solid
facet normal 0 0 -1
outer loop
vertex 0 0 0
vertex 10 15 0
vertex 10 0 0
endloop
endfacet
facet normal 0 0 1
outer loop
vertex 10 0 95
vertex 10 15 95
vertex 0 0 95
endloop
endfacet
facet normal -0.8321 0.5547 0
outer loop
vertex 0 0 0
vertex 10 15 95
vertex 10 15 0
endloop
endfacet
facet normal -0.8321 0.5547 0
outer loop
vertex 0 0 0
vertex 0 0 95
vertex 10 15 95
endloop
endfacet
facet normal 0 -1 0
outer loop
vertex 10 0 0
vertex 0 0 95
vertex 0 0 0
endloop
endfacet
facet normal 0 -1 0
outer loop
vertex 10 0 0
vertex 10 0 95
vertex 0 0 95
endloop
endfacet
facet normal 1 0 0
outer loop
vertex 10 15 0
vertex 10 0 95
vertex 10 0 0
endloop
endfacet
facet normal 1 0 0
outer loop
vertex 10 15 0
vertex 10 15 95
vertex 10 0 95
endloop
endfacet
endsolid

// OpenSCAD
linear_extrude(height = 95)
  polygon(points = [[0, 0], [10, 0], [10, 15]]); 
